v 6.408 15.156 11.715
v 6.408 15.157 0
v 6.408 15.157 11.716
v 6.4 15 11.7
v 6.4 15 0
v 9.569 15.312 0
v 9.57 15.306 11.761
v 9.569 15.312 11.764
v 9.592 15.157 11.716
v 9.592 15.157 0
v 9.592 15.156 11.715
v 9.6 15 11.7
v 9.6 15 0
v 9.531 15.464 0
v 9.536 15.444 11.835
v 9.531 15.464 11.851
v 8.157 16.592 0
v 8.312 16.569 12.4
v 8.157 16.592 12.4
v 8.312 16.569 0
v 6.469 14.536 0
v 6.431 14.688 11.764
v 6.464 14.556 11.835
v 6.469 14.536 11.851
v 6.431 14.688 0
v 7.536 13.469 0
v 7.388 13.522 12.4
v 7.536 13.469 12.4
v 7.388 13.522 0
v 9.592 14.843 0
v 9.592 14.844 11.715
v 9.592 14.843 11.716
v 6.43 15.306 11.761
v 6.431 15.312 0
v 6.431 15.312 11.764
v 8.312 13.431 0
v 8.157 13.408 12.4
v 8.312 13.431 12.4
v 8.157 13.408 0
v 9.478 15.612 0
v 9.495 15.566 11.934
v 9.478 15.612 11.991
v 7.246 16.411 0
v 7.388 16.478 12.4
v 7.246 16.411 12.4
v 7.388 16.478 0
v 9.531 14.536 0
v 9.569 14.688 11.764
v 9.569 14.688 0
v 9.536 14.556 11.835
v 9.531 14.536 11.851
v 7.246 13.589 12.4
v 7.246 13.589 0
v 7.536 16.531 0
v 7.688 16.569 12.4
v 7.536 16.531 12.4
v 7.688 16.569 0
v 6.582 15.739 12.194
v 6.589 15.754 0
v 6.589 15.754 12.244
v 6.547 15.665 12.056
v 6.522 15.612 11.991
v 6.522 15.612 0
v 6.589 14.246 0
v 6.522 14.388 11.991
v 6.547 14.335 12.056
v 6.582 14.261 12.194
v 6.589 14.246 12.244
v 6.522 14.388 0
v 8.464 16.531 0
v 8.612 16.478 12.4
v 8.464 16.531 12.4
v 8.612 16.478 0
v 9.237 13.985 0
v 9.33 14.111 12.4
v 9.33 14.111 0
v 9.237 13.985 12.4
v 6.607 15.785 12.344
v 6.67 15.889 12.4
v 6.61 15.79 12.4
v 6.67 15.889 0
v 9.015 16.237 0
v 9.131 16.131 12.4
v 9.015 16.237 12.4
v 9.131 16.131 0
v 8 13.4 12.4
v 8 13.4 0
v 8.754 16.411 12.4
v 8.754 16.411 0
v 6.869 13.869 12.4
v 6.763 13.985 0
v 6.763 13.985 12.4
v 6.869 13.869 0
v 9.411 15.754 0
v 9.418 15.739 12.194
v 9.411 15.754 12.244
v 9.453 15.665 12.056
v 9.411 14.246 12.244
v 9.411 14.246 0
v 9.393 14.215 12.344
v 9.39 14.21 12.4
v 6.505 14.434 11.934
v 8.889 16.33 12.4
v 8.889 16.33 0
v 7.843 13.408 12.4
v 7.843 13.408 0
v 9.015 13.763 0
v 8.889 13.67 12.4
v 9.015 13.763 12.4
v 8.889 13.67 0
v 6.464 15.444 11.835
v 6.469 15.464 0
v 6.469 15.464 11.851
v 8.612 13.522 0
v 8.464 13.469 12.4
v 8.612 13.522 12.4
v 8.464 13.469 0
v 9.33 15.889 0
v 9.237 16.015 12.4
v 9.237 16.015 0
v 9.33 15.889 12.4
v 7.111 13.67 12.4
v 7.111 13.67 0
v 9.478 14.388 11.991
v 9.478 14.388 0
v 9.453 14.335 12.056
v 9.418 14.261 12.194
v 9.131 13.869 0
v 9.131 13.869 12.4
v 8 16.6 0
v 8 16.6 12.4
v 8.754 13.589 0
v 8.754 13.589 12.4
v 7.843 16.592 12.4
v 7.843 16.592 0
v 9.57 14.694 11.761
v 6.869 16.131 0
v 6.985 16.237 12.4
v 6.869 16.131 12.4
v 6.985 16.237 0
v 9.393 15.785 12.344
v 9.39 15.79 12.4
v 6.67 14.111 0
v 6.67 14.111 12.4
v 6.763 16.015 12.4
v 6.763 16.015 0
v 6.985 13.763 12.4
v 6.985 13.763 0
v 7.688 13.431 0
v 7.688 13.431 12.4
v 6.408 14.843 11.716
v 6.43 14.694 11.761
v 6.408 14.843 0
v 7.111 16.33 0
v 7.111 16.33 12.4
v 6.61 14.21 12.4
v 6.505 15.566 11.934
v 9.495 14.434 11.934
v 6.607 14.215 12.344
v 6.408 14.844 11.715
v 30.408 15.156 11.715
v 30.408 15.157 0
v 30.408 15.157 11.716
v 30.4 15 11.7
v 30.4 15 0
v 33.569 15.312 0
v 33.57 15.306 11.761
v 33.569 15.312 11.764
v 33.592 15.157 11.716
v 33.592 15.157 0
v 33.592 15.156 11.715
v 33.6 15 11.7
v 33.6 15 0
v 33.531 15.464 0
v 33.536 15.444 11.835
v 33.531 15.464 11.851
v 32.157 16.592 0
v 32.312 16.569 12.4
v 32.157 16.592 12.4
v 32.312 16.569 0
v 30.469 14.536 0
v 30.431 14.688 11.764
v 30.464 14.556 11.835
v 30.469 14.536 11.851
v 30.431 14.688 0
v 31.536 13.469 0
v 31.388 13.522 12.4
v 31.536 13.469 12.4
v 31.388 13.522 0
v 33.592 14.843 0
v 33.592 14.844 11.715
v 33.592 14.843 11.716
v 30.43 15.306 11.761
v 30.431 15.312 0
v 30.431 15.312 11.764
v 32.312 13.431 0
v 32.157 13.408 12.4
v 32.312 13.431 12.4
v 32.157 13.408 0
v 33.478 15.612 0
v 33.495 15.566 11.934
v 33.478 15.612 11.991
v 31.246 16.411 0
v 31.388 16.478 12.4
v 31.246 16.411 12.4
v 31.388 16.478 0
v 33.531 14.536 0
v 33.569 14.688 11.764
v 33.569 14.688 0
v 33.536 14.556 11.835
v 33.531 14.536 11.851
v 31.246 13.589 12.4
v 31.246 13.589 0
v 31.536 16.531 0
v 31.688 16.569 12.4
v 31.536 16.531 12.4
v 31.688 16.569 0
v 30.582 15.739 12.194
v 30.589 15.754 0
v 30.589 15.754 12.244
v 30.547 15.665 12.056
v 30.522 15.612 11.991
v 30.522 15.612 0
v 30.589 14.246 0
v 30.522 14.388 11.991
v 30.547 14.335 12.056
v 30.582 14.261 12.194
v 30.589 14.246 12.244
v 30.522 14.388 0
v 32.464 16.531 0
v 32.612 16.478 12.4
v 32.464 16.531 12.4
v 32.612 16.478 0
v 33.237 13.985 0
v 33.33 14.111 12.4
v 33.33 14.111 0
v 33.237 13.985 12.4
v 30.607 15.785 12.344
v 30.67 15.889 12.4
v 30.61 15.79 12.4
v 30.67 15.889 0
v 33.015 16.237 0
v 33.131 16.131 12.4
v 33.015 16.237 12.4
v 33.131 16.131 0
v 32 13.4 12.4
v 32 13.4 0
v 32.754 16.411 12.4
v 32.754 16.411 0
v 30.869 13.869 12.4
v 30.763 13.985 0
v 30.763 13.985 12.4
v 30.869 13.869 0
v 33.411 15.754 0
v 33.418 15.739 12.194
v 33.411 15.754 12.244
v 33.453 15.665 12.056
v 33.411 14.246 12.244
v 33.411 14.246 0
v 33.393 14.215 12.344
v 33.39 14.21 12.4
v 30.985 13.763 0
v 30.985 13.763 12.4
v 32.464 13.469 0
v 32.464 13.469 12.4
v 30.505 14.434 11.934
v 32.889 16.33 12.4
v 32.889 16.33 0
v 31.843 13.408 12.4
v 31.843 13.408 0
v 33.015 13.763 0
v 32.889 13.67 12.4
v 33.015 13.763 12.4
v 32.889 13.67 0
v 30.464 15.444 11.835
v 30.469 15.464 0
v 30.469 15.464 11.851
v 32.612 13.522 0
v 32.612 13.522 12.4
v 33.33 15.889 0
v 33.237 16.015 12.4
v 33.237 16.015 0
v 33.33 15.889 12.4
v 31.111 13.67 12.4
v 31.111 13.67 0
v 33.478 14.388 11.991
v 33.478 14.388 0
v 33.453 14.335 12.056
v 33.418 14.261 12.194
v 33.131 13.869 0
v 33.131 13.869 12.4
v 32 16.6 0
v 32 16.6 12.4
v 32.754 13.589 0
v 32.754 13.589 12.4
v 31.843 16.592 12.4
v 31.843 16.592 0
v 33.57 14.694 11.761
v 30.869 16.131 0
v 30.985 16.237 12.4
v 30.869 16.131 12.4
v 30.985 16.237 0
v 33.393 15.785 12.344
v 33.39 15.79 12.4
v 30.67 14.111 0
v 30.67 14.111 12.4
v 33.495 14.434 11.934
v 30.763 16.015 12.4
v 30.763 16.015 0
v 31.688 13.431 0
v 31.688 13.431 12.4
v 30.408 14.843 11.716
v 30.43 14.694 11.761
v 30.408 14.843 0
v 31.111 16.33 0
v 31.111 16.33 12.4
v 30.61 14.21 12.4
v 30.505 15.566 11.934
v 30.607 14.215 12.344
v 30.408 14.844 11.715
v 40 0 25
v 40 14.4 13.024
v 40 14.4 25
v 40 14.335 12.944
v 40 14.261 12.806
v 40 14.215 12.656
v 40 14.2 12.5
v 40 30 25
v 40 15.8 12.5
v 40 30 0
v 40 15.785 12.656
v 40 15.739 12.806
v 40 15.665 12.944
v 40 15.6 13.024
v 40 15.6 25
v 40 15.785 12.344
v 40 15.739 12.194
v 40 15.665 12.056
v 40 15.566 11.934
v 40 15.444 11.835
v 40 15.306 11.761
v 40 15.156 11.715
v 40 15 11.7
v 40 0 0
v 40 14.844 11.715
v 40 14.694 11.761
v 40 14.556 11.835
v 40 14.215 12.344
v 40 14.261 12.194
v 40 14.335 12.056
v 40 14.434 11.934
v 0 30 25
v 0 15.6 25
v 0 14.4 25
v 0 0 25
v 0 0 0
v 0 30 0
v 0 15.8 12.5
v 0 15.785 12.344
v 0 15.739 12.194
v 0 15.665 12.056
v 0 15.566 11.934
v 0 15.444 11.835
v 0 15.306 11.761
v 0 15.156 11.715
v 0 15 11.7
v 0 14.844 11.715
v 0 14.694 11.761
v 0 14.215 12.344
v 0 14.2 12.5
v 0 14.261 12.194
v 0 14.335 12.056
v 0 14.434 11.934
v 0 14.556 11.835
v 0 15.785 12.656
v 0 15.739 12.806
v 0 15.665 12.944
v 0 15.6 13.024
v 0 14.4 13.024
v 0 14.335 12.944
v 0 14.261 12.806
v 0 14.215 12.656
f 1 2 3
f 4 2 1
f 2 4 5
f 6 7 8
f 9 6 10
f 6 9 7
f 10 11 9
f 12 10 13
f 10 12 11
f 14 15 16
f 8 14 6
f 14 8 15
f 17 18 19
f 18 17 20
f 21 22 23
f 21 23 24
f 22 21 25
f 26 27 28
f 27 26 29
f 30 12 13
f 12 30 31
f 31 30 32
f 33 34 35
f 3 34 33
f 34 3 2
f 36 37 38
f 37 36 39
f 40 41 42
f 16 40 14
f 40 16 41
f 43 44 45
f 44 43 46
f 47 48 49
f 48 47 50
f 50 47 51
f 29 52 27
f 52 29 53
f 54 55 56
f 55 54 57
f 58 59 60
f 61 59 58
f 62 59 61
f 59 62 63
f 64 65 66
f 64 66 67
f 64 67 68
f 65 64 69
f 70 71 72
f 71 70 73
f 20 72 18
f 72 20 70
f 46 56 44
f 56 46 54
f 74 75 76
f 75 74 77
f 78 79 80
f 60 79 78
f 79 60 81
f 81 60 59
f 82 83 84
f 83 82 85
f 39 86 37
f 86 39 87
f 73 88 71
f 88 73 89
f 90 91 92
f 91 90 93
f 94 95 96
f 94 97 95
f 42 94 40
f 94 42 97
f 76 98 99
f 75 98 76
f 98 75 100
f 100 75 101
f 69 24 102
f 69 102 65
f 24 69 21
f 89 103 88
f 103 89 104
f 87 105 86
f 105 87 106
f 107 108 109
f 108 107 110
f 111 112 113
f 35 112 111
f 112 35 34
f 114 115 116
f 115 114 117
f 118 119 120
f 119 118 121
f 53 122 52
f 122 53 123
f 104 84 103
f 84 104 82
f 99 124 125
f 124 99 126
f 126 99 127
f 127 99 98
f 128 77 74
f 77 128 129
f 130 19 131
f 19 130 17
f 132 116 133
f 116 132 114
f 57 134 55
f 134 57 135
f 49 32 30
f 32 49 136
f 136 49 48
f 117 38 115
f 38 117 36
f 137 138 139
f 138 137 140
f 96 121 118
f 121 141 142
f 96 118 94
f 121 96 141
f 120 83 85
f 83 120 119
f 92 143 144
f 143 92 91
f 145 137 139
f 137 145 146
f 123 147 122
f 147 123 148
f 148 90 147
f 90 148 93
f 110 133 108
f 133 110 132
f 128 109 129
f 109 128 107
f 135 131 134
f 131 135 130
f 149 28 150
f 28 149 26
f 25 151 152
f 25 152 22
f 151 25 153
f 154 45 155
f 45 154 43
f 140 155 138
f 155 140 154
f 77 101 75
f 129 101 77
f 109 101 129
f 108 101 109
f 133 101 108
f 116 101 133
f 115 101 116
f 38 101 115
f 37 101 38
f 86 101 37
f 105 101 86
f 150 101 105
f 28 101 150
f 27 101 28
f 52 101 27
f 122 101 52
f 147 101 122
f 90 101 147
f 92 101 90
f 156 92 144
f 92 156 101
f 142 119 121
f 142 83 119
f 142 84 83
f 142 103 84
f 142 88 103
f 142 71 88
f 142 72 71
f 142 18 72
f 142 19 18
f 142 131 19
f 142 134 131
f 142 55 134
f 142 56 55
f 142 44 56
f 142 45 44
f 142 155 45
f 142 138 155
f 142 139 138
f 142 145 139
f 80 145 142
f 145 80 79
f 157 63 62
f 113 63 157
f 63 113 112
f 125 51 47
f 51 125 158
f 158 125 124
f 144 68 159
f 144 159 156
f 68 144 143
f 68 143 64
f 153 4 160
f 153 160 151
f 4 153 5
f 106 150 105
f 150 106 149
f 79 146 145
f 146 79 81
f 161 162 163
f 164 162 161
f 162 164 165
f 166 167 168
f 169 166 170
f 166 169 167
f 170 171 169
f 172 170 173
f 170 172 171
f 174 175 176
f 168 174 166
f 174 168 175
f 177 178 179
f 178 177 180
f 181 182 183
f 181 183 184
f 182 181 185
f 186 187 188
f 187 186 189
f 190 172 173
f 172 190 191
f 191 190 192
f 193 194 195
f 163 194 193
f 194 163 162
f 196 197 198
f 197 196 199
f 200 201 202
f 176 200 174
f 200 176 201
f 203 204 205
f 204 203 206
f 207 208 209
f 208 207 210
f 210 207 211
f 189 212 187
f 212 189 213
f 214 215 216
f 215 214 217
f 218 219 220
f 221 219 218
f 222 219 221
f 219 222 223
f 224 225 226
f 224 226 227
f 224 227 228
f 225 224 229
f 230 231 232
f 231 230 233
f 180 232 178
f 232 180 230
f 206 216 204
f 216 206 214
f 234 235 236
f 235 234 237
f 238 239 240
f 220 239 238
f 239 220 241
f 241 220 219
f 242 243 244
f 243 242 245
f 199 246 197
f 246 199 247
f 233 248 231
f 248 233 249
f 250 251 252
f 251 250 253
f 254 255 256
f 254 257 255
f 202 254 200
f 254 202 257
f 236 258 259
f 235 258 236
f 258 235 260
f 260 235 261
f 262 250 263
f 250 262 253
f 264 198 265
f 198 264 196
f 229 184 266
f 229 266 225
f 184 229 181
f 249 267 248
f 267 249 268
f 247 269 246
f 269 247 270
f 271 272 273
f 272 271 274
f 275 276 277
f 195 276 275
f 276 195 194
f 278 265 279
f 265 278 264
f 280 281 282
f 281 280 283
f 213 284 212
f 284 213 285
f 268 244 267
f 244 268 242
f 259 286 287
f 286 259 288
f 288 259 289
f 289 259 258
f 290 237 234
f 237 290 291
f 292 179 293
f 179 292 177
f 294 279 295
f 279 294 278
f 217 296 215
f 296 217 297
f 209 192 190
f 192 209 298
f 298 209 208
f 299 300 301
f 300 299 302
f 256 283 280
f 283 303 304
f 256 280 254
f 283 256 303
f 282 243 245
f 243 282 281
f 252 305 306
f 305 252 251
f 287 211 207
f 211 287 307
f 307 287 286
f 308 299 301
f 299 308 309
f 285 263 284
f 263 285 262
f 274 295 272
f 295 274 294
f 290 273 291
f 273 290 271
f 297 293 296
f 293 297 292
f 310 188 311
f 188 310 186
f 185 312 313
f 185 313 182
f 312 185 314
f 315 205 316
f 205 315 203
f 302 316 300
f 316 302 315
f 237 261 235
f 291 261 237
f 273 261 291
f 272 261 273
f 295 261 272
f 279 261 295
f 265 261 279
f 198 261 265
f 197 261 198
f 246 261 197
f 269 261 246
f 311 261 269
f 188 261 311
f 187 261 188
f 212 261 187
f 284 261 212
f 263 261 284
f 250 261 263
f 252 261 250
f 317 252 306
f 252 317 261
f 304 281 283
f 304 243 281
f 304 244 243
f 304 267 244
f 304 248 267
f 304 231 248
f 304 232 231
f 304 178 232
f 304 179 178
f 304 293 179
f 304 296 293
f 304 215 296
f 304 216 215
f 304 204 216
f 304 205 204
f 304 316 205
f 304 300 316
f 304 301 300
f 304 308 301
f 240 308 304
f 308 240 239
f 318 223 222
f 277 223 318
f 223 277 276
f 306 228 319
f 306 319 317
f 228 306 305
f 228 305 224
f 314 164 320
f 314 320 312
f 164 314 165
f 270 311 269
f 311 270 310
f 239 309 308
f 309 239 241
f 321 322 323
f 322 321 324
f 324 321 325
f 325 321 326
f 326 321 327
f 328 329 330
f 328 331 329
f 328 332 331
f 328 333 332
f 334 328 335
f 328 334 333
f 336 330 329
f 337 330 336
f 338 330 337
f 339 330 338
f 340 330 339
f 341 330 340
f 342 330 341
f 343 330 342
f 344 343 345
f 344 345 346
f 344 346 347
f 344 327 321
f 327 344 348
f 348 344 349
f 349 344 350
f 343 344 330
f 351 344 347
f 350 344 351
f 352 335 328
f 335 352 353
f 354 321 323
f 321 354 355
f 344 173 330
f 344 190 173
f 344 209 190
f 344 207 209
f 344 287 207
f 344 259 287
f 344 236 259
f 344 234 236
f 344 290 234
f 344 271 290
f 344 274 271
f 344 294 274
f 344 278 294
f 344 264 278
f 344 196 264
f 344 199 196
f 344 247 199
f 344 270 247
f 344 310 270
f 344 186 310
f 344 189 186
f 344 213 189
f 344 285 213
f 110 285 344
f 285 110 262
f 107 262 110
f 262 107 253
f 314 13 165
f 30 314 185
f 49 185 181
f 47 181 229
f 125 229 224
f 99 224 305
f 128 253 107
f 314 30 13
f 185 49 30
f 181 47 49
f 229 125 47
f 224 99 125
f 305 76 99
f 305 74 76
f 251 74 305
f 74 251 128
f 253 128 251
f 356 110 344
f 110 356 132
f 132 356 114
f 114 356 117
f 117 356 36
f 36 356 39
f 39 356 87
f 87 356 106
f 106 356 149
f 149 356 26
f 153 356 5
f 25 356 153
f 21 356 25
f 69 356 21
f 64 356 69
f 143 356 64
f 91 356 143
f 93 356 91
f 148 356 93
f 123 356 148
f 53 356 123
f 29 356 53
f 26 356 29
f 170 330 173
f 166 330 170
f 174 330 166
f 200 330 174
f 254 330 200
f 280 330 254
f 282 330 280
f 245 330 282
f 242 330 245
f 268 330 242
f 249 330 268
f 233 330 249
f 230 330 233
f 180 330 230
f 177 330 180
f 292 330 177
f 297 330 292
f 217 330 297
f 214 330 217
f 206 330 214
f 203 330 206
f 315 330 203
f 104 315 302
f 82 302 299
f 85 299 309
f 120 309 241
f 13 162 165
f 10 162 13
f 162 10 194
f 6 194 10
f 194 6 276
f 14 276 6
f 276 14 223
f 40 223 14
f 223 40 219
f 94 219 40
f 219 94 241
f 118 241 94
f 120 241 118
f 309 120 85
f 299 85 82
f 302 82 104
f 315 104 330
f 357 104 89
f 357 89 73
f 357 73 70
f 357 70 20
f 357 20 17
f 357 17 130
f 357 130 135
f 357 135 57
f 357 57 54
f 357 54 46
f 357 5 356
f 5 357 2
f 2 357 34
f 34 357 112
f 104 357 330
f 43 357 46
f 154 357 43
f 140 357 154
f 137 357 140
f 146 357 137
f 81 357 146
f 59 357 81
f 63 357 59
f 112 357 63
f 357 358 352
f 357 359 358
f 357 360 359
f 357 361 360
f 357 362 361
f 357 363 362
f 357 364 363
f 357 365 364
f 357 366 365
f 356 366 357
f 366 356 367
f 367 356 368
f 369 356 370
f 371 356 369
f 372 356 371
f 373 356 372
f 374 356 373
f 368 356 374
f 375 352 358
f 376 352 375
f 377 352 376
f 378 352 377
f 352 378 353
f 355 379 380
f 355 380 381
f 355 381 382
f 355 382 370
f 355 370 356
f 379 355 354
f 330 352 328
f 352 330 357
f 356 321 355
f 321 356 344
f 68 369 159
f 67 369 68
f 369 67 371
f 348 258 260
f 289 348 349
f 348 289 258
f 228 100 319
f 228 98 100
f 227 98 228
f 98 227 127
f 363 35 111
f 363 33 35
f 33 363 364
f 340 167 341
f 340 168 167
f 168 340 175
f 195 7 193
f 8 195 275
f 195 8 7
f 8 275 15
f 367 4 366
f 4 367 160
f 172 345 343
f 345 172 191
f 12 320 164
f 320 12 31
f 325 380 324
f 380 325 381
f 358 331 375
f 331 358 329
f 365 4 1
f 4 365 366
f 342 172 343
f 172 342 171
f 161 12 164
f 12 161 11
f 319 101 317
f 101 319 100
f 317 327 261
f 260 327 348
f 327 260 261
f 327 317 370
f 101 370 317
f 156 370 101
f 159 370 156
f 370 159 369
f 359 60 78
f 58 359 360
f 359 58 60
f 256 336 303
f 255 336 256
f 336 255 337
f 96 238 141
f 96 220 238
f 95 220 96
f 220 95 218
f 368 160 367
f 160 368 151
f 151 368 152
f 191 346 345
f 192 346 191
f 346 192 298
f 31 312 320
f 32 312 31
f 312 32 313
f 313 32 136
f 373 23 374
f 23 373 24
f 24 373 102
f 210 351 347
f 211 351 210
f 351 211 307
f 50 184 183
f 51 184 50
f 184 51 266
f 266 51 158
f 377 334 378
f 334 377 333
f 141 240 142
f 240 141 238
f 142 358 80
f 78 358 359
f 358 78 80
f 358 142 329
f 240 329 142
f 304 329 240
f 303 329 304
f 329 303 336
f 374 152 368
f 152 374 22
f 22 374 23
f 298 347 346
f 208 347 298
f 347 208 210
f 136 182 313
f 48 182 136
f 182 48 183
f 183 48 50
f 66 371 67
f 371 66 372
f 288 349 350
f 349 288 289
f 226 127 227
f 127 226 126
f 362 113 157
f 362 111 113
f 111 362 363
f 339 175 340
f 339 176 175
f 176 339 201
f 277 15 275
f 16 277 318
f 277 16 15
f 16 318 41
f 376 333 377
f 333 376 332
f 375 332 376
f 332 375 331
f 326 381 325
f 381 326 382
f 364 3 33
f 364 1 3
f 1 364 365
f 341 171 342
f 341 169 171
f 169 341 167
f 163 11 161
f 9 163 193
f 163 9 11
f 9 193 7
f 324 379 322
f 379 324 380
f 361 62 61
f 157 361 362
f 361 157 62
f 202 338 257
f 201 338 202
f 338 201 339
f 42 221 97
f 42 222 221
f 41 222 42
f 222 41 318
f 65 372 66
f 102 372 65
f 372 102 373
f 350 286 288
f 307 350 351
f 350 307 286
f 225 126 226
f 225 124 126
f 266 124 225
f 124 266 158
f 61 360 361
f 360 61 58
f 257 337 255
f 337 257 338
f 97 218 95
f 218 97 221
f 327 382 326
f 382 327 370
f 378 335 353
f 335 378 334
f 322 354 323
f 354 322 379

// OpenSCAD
// file: 00_common.scad
// vertical-lift-bridge :: COMMON PARAMETERS
// All dimensions in millimetres. Imported by every part file.
// Ratified parameters from audit Q1–Q7. Do not edit without group approval.

// ==== BUILD VOLUME ====
PRINTER_X = 220;
PRINTER_Y = 220;
PRINTER_Z = 250;
$fn = 64;  // smoothness for production prints

// ==== OVERALL FOOTPRINT ====
FOOTPRINT_X = 1200;        // along the road / cable axis
FOOTPRINT_Y = 600;         // across the river
BASE_T      = 6;           // base panel thickness
WATERWAY_W  = 200;         // navigable channel width

// ==== TOWERS ====
TOWER_H        = 350;       // total height (split-printed in 2 sections)
TOWER_SPLIT    = 175;       // join height
TOWER_W        = 90;        // width
TOWER_D        = 60;        // depth
TOWER_WALL     = 4;         // wall thickness
TOWER_INNER_W  = TOWER_W - 2*TOWER_WALL;
TOWER_INNER_D  = TOWER_D - 2*TOWER_WALL;
TOWER_SPACING  = 800;       // tower-to-tower centre distance

// ==== DECK ====
DECK_L  = 200;              // along the road
DECK_W  = 120;              // across the road
DECK_T  = 6;                // thickness
DECK_LIFT = 180;            // vertical travel

// ==== COUNTERWEIGHT ====
CW_L  = 60;
CW_W  = 40;
CW_H  = 60;
CW_WALL = 3;
CW_NUT_POCKET_D = 14;       // M8 nut across-flats + clearance
CW_NUT_POCKET_H = 8;

// ==== PULLEY ====
PULLEY_D       = 50;
PULLEY_BORE    = 6.2;       // 6 mm shaft + 0.2 clearance
PULLEY_W       = 20;
PULLEY_GROOVE_D = 1.4;      // 1 mm cable + 0.4 clearance
PULLEY_HUB_D   = 12;
PULLEY_HUB_H   = 8;

// ==== MOTOR ====
MOTOR_BODY_D   = 25;        // JGA25-370 body
MOTOR_BODY_L   = 32;
MOTOR_GEARBOX_L = 19;
MOTOR_SHAFT_D  = 6.2;       // 6 mm shaft + 0.2 clearance
MOTOR_FLAT_W   = 5.5;
MOTOR_MOUNT_W  = 35;
MOTOR_MOUNT_T  = 5;
MOTOR_MOUNT_HOLE_D = 3.2;   // M3 clearance

// ==== CABLE GUIDE ====
CABLE_GUIDE_W = 40;
CABLE_GUIDE_D = 30;
CABLE_GUIDE_H = 25;
CABLE_GUIDE_GROOVE_R = 0.7; // half of 1.4 cable channel

// ==== ROAD BARRIER ====
BARRIER_L = 80;
BARRIER_W = 15;
BARRIER_T = 8;
BARRIER_SERVO_HORN_D = 6;

// ==== PCB ENCLOSURE ====
PCB_X = 100;
PCB_Y = 80;
PCB_T = 1.6;
ENC_WALL = 2.5;
ENC_GAP  = 0.3;
ENC_PCB_STANDOFF_H = 5;
ENC_LID_H = 8;
ENC_BASE_H = PCB_T + ENC_PCB_STANDOFF_H + 8;
ENC_OUTER_X = PCB_X + 2*(ENC_WALL + ENC_GAP);
ENC_OUTER_Y = PCB_Y + 2*(ENC_WALL + ENC_GAP);

// ==== CAMERA MOUNT (ESP32-CAM AI-Thinker) ====
CAM_BOARD_X = 40.5;
CAM_BOARD_Y = 27;
CAM_BOARD_T = 1.6;
CAM_LENS_D  = 9.5;
CAM_GANTRY_H = 220;          // height above road for FOV
CAM_TILT_DEG = 25;

// ==== TFT DISPLAY MOUNT ====
// 2.8" ILI9341 with XPT2046 — common module 86×56×4 mm with 8 mm header on one side
TFT_BOARD_X = 86;
TFT_BOARD_Y = 56;
TFT_BOARD_T = 4;
TFT_VISIBLE_X = 58;          // active area
TFT_VISIBLE_Y = 44;
TFT_TILT_DEG = 35;           // Q5 ratified — 35° tilt
TFT_BEZEL = 5;
TFT_BACK_DEPTH = 18;         // header height behind board

// ==== HARDWARE ====
M3_CLEAR  = 3.2;
M3_TAP    = 2.8;
M3_HEAD_D = 6.0;
M3_HEAD_H = 3.0;
M3_INSERT_D = 4.2;           // brass heat-set insert OD
M3_INSERT_H = 5.0;
M8_BOLT_D = 8.4;
// main file
// 08_cable_guide.scad — fairlead between drum and tower-top pulley
include <00_common.scad>

module cable_guide() {
    difference() {
        // body
        cube([CABLE_GUIDE_W, CABLE_GUIDE_D, CABLE_GUIDE_H]);
        // cable channel through long axis
        translate([-0.1, CABLE_GUIDE_D/2, CABLE_GUIDE_H/2])
            rotate([0,90,0])
                cylinder(r=CABLE_GUIDE_GROOVE_R + 0.1,
                         h=CABLE_GUIDE_W + 0.2, $fn=32);
        // open the channel from above (slot to thread cable)
        translate([-0.1, CABLE_GUIDE_D/2 - 0.6, CABLE_GUIDE_H/2])
            cube([CABLE_GUIDE_W + 0.2, 1.2, CABLE_GUIDE_H/2 + 0.1]);
        // fastener holes (2× M3 to base)
        for (x = [8, CABLE_GUIDE_W - 8])
            translate([x, CABLE_GUIDE_D/2, -0.1])
                cylinder(d=M3_CLEAR, h=CABLE_GUIDE_H/2);
    }
}

cable_guide();
